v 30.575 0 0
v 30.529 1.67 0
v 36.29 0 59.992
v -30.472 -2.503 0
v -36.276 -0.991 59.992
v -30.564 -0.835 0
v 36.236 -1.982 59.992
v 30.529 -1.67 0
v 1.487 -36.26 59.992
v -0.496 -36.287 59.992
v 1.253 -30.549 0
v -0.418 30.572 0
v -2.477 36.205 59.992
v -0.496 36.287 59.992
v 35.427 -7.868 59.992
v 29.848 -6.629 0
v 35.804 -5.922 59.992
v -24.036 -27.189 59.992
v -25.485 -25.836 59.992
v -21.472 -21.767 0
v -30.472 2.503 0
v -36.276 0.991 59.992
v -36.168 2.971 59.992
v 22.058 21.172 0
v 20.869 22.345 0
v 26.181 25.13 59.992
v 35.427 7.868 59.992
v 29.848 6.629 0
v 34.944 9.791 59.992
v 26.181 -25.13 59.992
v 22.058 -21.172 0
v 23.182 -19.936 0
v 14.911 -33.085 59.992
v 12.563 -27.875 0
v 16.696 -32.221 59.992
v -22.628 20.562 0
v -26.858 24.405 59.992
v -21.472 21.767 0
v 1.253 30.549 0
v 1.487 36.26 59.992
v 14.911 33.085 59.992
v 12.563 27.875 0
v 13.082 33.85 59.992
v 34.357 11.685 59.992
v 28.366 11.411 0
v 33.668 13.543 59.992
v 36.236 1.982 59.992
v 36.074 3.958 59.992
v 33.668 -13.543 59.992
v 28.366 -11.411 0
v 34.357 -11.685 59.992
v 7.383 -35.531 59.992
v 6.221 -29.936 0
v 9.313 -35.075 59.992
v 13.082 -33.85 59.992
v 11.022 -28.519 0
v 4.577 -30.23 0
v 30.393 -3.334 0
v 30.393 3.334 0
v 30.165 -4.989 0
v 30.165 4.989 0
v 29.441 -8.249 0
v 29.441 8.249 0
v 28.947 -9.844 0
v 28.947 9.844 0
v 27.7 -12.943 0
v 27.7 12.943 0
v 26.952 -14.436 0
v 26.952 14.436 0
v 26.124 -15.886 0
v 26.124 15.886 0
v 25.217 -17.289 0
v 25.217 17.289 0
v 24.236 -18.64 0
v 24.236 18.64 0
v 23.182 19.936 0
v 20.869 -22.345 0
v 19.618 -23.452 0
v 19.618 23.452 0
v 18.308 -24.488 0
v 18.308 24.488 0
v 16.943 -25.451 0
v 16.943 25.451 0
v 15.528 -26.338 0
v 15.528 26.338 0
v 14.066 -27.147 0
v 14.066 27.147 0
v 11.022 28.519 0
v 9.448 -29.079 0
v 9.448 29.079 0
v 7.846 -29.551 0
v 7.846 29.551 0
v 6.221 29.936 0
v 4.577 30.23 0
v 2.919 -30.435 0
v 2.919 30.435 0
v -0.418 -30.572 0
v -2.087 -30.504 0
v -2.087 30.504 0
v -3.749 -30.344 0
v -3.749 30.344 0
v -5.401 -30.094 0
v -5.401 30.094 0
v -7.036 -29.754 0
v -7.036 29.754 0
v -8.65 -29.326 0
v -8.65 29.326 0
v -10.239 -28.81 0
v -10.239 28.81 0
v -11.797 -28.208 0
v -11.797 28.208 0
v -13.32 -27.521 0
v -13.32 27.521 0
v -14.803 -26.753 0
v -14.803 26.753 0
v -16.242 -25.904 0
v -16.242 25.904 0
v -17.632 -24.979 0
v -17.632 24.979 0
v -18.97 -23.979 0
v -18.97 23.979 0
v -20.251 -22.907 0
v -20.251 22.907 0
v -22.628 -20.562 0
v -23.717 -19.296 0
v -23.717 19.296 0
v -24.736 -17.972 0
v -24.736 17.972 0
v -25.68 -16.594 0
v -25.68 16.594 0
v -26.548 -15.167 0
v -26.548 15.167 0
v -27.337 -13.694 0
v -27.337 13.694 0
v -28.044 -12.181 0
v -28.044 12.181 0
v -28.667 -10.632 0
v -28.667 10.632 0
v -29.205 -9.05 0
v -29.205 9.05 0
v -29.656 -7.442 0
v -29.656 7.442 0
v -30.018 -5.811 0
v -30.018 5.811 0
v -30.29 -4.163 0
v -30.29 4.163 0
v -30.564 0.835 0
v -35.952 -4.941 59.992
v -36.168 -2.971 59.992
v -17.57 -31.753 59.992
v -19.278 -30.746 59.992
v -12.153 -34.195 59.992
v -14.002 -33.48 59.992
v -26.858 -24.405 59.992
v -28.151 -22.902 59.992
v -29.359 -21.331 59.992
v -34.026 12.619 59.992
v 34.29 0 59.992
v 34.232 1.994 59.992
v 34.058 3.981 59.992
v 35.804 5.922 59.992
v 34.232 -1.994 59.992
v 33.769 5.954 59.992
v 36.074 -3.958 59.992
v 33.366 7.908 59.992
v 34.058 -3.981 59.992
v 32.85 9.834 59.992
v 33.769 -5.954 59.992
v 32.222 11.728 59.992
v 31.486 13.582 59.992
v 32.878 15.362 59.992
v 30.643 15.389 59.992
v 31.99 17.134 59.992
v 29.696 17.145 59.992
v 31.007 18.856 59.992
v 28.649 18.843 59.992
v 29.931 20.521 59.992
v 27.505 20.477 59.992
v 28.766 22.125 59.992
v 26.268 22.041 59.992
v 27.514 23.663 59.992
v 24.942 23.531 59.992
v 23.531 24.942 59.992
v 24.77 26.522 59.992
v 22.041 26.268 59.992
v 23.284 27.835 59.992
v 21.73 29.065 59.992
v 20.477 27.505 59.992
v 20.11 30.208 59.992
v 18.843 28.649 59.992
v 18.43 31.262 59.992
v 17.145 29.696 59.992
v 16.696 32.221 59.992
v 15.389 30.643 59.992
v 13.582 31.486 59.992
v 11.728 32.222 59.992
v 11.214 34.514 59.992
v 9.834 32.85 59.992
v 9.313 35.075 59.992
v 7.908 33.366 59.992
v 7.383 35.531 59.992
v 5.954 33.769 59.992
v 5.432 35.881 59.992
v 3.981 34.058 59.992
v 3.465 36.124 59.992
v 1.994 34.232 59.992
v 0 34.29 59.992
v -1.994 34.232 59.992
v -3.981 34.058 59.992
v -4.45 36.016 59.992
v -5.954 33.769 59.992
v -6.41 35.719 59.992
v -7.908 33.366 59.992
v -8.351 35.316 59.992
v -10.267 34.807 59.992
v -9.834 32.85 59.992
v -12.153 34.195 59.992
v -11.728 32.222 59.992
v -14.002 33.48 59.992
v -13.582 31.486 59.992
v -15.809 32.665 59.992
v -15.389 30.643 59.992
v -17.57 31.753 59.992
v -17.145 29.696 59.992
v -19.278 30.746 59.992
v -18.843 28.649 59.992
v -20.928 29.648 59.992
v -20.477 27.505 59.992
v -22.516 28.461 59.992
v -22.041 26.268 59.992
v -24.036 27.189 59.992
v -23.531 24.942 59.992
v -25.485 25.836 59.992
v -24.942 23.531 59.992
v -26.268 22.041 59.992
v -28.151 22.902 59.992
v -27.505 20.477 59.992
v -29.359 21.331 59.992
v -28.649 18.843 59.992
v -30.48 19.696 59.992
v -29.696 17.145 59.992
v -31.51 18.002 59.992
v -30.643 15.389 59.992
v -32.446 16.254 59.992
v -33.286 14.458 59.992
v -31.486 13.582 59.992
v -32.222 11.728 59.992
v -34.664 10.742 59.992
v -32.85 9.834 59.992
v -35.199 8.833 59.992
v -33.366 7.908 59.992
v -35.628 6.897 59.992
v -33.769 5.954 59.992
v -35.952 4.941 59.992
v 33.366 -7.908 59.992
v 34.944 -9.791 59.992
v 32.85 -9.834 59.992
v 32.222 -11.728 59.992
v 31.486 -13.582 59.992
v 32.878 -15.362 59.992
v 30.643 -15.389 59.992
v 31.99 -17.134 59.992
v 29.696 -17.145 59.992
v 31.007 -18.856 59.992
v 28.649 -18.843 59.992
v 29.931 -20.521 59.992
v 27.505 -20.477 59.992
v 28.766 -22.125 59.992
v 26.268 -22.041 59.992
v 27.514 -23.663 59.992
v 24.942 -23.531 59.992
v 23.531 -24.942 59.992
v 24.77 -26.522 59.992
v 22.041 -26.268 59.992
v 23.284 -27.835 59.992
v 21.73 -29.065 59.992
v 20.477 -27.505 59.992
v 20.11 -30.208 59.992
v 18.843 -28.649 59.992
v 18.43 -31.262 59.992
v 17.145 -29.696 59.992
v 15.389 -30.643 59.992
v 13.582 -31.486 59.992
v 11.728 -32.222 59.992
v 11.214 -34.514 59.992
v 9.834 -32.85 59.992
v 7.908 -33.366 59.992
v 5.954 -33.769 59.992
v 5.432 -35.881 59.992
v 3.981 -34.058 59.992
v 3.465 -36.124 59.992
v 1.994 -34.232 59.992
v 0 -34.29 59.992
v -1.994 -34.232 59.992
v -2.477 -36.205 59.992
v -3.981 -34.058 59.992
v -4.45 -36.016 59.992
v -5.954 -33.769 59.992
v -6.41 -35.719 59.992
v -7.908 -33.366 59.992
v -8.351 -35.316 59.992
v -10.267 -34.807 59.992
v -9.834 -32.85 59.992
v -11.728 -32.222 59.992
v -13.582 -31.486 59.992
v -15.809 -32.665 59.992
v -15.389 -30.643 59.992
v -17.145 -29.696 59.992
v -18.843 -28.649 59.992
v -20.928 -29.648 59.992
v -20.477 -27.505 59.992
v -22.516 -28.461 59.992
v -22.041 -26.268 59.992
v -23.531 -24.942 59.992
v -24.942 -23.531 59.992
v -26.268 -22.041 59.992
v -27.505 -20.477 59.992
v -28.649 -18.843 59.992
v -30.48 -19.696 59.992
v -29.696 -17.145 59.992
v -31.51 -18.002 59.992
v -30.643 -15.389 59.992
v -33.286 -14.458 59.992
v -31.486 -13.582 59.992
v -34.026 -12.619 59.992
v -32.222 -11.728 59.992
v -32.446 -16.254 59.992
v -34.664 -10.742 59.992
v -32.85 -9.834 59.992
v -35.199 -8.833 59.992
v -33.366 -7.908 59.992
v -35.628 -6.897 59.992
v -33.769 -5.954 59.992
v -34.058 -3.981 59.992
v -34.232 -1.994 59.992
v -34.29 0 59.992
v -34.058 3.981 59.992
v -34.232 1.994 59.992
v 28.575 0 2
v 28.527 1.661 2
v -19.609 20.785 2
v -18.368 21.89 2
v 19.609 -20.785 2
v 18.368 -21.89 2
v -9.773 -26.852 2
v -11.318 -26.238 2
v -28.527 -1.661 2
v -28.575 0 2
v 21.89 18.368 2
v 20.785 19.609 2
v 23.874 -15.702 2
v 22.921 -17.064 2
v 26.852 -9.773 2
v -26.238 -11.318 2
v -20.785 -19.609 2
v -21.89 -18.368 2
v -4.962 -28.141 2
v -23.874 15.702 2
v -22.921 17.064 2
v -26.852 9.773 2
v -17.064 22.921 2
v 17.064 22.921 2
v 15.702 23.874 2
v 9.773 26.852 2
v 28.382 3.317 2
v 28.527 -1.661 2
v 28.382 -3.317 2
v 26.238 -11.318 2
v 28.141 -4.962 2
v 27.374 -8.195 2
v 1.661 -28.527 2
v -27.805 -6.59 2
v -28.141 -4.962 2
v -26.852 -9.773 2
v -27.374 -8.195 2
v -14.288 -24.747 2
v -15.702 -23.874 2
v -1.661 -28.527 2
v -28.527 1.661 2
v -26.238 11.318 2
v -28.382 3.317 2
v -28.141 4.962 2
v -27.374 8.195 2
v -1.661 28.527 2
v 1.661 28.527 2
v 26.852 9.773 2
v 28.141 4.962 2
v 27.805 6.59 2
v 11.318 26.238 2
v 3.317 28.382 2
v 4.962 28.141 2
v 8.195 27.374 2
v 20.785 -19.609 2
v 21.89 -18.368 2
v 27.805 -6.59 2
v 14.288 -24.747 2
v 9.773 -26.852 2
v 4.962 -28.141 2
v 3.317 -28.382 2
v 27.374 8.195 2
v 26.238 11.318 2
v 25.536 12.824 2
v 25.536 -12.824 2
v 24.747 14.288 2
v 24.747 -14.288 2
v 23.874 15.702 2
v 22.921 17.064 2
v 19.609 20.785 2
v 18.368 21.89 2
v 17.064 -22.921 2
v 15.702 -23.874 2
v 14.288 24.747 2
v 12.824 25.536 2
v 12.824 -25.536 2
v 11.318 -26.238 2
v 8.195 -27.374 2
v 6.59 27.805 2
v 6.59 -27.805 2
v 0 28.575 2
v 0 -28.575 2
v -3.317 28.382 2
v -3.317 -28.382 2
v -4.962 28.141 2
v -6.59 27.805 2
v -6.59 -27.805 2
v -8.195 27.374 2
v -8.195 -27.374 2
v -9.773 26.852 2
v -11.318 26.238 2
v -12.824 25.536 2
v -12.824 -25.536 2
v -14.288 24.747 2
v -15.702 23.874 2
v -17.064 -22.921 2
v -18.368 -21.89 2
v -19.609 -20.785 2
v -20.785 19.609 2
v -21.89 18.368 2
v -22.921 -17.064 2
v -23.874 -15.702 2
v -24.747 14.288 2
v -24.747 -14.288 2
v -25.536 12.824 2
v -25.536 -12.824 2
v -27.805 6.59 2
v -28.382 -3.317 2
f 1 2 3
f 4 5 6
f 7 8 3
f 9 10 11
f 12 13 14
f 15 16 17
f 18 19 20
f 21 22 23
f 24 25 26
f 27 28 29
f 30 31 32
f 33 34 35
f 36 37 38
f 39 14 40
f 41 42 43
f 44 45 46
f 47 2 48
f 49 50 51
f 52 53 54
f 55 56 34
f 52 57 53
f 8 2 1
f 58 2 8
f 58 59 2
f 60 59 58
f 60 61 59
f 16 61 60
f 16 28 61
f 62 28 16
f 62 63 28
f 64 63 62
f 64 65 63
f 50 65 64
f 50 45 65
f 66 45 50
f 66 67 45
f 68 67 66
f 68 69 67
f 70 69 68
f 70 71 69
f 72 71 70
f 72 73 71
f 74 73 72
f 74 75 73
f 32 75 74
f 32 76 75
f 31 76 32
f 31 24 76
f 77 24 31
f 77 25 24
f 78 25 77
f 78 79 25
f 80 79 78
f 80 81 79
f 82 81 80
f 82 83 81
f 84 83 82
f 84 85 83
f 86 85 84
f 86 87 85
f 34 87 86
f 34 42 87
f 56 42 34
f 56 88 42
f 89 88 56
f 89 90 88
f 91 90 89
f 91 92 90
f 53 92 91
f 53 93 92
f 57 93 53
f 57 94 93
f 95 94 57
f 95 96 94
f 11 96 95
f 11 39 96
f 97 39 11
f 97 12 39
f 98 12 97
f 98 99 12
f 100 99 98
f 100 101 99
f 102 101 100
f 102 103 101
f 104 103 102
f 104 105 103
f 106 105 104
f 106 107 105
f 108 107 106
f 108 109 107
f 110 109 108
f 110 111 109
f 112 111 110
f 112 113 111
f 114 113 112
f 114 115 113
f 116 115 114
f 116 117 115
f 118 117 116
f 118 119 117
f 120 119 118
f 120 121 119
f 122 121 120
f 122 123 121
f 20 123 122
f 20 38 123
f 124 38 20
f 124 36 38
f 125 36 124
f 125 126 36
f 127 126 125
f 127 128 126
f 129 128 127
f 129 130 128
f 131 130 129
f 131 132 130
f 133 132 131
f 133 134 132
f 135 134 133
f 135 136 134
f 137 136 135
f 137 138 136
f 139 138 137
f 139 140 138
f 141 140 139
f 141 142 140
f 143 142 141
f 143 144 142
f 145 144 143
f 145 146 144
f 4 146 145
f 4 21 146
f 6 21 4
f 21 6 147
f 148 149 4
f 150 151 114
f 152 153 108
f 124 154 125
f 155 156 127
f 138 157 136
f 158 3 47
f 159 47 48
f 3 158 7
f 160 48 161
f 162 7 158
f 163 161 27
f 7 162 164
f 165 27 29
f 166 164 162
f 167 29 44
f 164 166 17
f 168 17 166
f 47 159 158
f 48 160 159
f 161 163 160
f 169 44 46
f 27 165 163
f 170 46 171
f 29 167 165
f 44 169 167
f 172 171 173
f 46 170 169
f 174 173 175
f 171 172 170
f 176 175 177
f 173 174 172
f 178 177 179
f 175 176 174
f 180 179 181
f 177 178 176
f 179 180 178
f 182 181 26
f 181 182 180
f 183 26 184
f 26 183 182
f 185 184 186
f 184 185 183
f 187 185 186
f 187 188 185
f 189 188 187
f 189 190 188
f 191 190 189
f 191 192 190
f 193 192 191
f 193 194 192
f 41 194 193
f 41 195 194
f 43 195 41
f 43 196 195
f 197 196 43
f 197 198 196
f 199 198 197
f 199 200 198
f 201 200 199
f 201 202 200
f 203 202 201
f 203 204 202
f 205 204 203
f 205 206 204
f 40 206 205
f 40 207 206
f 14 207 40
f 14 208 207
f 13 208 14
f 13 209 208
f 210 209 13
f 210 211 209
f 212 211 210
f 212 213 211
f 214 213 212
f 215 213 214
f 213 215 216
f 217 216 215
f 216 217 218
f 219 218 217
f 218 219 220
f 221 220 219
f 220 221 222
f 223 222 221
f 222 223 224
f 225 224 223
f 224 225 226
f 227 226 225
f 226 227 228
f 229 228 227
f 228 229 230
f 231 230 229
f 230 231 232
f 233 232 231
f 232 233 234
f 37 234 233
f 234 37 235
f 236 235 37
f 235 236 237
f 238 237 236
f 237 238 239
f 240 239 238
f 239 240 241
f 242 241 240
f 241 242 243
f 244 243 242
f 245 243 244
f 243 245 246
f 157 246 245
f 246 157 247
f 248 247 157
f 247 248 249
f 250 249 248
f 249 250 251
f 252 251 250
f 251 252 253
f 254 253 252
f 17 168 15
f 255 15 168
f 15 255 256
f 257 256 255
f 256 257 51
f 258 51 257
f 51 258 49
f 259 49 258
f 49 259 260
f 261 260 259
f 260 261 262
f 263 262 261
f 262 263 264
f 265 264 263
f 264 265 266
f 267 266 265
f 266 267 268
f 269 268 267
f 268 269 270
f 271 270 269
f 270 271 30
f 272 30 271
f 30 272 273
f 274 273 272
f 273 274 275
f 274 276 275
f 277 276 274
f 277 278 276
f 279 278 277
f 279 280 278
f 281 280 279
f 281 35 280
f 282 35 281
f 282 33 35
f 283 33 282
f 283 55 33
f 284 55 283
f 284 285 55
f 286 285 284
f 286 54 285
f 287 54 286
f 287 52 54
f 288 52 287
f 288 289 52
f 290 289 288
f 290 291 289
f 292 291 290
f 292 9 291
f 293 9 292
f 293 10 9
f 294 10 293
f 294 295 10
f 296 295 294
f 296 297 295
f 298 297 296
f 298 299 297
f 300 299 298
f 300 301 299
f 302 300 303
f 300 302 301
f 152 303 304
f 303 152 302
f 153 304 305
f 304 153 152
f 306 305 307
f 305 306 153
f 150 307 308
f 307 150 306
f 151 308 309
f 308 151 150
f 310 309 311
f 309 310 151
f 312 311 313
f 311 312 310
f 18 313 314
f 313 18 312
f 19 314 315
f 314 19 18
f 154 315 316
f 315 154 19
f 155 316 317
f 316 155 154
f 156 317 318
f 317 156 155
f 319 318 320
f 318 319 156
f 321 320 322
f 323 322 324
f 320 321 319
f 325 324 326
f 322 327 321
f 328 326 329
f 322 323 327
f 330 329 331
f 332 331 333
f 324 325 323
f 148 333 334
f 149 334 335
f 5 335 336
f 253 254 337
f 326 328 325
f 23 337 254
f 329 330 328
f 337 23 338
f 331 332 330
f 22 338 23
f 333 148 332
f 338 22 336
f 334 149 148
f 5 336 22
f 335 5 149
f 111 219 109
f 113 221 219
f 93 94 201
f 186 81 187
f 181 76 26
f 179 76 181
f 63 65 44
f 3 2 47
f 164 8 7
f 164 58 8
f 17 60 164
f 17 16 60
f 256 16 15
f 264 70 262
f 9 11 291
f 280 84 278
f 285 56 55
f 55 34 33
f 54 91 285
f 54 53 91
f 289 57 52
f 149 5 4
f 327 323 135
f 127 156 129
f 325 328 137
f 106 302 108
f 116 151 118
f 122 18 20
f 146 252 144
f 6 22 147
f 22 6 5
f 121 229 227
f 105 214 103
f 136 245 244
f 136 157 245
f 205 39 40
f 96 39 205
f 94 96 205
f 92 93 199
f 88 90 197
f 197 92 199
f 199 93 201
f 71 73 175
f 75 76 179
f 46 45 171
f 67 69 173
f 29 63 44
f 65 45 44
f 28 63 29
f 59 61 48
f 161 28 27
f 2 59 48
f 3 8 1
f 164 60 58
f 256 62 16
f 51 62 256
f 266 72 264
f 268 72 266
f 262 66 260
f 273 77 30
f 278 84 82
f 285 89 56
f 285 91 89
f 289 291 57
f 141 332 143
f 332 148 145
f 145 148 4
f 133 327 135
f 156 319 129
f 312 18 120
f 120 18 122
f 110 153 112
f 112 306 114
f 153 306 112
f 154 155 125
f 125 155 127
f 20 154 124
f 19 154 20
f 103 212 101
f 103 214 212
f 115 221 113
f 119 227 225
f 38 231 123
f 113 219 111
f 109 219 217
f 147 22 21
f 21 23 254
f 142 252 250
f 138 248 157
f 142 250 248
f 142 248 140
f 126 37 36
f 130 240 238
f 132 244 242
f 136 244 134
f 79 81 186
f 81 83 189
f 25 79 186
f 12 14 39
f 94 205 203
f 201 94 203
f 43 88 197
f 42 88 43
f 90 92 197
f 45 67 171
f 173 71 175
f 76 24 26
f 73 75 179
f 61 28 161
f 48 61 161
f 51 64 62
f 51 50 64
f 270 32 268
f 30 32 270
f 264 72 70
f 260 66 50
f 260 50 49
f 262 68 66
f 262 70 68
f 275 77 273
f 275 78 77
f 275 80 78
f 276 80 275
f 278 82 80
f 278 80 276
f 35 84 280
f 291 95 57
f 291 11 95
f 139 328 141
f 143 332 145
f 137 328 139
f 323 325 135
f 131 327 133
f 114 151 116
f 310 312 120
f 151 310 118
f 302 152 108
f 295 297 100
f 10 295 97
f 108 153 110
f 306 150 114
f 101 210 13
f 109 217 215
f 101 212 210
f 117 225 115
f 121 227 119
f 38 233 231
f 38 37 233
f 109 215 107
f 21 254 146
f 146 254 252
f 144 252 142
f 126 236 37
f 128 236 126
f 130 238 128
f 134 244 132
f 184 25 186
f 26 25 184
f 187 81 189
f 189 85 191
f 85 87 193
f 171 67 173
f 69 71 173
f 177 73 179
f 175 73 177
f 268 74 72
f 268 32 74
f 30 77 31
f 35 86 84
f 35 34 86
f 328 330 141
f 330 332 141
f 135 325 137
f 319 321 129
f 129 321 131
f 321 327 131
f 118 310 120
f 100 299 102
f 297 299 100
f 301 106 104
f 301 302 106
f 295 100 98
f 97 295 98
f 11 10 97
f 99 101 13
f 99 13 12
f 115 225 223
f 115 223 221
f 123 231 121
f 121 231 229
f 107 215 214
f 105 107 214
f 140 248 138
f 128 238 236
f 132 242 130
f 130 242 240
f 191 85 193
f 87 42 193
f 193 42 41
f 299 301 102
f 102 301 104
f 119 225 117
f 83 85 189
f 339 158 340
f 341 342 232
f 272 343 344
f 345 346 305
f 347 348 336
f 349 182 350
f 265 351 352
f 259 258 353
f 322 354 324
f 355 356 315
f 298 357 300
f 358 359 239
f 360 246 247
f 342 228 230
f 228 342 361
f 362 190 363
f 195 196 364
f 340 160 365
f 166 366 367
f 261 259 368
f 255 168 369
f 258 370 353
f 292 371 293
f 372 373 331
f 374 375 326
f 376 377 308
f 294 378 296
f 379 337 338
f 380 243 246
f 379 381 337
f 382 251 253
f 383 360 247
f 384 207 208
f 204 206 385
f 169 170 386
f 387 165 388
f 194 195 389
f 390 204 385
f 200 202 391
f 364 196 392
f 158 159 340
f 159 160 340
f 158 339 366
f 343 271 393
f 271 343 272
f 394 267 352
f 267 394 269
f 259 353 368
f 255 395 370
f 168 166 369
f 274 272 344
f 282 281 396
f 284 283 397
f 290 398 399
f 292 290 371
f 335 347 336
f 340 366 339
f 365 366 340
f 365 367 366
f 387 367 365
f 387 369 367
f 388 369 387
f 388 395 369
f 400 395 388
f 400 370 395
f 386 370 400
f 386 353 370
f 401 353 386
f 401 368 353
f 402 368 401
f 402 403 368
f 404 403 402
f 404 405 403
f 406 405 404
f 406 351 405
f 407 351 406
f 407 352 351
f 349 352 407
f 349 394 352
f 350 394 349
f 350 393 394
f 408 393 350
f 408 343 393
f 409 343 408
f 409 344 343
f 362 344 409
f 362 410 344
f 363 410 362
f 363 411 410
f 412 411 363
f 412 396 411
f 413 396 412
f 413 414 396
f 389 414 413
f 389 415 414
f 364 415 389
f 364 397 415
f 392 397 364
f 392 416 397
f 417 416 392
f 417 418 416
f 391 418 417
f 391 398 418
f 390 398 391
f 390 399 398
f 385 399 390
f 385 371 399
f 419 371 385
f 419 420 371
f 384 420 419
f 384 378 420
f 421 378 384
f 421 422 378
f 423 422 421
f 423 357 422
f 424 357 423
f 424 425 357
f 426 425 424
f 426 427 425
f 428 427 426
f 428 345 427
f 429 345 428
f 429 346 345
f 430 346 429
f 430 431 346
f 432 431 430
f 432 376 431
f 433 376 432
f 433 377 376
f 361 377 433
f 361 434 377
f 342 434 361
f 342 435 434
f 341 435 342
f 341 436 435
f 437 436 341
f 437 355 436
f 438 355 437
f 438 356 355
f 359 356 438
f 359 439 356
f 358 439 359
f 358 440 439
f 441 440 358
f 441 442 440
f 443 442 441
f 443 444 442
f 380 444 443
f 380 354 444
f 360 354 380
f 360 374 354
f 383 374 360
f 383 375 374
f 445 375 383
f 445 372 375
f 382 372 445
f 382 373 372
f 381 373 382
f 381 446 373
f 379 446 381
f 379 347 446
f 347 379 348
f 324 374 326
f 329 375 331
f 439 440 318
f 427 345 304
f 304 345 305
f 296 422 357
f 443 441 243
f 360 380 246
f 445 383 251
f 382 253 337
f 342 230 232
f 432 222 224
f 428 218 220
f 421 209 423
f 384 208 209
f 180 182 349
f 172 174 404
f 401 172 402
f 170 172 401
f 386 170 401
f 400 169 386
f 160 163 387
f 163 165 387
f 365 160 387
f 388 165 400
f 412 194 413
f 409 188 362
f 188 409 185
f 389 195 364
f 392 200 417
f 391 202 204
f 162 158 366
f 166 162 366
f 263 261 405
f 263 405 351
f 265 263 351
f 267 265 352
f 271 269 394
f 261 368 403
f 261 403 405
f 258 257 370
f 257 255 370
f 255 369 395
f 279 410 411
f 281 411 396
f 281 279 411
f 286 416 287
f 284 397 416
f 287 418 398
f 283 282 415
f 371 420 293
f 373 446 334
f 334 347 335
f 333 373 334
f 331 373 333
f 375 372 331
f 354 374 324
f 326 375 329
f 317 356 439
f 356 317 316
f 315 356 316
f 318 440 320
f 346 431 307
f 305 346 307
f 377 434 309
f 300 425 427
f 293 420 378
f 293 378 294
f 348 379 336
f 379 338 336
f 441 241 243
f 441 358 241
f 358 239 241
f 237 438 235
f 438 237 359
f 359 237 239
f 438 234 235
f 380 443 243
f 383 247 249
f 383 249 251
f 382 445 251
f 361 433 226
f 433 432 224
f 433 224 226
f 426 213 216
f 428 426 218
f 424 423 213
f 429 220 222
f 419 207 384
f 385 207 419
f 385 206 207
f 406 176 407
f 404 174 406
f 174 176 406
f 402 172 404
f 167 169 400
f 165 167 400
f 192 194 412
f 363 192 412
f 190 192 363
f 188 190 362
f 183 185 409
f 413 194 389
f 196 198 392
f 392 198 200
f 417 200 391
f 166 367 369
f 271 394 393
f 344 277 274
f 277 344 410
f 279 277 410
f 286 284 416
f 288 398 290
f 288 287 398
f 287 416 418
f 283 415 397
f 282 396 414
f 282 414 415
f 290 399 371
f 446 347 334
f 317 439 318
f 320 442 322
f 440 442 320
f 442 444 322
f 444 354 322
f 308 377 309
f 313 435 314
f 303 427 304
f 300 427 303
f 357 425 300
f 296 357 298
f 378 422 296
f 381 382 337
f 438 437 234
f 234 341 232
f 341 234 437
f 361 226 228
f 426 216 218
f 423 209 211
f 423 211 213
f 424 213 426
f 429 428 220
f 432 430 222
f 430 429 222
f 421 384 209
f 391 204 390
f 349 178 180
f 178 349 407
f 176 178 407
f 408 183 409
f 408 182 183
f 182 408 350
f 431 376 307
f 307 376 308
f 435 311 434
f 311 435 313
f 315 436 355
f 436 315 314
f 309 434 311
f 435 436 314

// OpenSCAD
//
// rice cup
//	cube type
//
// rice cooker cups are a standard 180 ml
// which is 180000 mm^3
//
// version 2
// created 2014-01-29
// modified 2016-01-19
//
// version 2 - fixed math (was using formula for circumfrence instead of area of a circle)
// 

$fa=0.1;
INCH=25.4;
PI=3.14159;

VOLUME=180000;  // STANDARD RICE CUP VOLUME (MM^3) - CANGE FOR OTHER CUP SIZES
BASE=2.25*INCH; // THIS CONTROLS THE WIDTH AND HEIGHT
TOP=BASE*1.2;   // THIS CONTROLS THE SLOPE OF THE SIDES OF THE CUP
WALLS=2;        // THIS CONTROLS HOW THICK THE CUP IS

AVGDIAM=(BASE+TOP)/2;
AVGRADIUS=AVGDIAM/2;
HEIGHT=VOLUME/(PI*AVGRADIUS*AVGRADIUS);

difference() {
	// rice cup exterior
	cylinder(r1=(BASE/2)+WALLS,r2=(TOP/2)+WALLS,h=HEIGHT+WALLS);
	// rice cup interior
	translate( v=[0,0,WALLS] ) {
		cylinder(r1=(BASE/2),r2=(TOP/2),h=HEIGHT);
	}
}
